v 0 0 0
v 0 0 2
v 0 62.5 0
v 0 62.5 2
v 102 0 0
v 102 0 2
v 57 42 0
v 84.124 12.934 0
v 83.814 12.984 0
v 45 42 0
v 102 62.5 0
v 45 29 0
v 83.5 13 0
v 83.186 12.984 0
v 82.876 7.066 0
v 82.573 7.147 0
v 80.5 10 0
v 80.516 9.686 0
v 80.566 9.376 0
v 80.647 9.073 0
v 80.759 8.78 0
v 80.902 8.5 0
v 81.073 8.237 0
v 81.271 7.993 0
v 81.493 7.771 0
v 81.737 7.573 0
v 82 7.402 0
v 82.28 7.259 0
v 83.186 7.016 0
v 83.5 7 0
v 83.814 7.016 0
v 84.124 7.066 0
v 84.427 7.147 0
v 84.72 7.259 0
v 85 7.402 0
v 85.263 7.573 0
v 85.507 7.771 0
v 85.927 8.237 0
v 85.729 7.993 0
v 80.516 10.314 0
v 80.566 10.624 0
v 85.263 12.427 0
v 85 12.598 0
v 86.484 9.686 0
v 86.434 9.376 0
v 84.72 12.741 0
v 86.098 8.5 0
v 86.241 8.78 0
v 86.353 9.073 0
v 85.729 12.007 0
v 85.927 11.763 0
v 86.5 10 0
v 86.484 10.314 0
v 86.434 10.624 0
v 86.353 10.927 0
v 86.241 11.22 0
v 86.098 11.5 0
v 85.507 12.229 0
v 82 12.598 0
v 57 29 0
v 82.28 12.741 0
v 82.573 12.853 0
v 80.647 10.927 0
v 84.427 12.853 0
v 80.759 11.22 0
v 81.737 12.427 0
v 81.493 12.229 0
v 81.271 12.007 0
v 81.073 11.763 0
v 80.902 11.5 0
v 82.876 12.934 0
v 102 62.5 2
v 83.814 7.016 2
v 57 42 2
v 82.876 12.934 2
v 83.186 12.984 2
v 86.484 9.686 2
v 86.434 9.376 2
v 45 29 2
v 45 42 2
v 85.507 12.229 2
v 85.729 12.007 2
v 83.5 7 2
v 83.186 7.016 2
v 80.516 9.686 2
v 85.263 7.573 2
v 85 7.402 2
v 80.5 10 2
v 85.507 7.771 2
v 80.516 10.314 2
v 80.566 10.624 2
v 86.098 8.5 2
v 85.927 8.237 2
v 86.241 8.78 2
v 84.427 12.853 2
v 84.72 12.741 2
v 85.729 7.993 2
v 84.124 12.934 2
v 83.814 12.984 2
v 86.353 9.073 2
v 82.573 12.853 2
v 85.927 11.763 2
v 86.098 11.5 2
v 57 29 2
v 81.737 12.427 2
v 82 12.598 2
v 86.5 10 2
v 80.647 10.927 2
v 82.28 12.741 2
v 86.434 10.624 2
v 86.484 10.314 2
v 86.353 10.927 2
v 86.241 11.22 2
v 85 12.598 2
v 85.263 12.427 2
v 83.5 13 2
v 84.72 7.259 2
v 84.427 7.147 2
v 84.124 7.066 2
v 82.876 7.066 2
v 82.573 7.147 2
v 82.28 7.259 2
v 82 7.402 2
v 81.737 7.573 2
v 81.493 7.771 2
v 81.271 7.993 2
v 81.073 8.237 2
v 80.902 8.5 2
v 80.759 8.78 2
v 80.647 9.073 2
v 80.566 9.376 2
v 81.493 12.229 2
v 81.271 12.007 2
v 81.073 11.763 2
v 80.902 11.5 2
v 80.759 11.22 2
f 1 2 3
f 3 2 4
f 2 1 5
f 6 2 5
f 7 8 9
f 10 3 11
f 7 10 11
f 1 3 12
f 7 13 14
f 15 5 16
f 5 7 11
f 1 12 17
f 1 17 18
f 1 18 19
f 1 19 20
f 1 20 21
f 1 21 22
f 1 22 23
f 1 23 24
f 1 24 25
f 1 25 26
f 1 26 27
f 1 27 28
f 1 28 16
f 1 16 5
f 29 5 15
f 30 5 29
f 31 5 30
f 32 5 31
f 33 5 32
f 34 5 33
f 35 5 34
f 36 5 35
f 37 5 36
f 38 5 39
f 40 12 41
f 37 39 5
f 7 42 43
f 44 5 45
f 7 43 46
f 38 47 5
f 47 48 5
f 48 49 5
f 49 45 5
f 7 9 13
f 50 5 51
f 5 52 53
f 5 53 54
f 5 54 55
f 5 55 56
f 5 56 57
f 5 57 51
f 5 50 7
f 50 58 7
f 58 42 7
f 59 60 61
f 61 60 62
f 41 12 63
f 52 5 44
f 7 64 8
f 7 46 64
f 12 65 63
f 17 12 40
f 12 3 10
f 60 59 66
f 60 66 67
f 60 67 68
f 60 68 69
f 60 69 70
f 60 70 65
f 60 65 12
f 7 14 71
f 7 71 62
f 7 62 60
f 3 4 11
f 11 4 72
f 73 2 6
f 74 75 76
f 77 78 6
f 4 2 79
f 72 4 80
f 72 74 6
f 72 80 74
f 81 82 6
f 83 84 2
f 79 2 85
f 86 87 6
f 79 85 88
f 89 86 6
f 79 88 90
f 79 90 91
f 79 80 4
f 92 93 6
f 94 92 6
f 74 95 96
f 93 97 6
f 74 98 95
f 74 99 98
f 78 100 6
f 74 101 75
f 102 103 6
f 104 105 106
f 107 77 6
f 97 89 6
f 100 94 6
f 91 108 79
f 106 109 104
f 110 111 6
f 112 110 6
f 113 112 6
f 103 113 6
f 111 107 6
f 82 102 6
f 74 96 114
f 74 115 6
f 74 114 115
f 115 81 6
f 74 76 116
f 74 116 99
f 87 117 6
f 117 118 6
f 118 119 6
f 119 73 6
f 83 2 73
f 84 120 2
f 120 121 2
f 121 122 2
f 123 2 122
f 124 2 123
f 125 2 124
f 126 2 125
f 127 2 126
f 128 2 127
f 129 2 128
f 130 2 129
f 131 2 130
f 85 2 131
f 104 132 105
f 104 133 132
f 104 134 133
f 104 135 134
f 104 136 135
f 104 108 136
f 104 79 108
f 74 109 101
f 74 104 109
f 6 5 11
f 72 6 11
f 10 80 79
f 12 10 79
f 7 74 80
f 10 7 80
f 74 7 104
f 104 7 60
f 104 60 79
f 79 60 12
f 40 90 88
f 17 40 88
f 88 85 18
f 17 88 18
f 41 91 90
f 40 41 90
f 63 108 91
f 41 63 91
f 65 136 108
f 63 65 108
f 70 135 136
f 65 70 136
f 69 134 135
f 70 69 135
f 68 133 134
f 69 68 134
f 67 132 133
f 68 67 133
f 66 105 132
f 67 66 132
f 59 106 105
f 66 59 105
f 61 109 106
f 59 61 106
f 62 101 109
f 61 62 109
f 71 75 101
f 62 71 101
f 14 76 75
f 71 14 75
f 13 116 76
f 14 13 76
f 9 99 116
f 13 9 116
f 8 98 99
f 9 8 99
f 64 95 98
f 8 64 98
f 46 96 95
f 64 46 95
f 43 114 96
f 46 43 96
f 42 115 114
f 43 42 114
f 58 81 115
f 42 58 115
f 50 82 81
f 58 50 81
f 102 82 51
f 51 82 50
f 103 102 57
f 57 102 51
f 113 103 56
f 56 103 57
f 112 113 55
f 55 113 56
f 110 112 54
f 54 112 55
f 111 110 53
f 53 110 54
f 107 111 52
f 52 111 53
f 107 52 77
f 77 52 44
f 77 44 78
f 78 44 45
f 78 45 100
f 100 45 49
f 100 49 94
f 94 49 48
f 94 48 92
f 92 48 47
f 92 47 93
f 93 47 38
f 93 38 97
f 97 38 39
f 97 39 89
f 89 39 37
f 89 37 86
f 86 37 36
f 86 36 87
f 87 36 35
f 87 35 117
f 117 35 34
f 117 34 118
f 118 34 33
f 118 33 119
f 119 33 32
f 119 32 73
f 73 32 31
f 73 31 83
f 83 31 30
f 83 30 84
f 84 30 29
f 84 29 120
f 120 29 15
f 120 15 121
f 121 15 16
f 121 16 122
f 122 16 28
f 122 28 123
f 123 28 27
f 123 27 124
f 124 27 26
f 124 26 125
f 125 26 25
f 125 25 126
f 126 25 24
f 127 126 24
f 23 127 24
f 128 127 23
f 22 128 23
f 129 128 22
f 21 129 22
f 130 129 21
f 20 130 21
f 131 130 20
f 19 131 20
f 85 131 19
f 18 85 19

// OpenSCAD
//
// Thermal imaging camera rear (camera side)
//   Design for external camera "lens" structure
//

difference() {
  // bezel
  cube([102, 62.5, 2]);

  // Cut-out for Flir Module
  translate([45, 29, -1]) {
    cube([12, 13, 4]);
  }

  // Cut-out for power button
  translate([83.5, 10, 1]) {
    cylinder(h=4, d=6, center=true, $fn=60);
  }
}
